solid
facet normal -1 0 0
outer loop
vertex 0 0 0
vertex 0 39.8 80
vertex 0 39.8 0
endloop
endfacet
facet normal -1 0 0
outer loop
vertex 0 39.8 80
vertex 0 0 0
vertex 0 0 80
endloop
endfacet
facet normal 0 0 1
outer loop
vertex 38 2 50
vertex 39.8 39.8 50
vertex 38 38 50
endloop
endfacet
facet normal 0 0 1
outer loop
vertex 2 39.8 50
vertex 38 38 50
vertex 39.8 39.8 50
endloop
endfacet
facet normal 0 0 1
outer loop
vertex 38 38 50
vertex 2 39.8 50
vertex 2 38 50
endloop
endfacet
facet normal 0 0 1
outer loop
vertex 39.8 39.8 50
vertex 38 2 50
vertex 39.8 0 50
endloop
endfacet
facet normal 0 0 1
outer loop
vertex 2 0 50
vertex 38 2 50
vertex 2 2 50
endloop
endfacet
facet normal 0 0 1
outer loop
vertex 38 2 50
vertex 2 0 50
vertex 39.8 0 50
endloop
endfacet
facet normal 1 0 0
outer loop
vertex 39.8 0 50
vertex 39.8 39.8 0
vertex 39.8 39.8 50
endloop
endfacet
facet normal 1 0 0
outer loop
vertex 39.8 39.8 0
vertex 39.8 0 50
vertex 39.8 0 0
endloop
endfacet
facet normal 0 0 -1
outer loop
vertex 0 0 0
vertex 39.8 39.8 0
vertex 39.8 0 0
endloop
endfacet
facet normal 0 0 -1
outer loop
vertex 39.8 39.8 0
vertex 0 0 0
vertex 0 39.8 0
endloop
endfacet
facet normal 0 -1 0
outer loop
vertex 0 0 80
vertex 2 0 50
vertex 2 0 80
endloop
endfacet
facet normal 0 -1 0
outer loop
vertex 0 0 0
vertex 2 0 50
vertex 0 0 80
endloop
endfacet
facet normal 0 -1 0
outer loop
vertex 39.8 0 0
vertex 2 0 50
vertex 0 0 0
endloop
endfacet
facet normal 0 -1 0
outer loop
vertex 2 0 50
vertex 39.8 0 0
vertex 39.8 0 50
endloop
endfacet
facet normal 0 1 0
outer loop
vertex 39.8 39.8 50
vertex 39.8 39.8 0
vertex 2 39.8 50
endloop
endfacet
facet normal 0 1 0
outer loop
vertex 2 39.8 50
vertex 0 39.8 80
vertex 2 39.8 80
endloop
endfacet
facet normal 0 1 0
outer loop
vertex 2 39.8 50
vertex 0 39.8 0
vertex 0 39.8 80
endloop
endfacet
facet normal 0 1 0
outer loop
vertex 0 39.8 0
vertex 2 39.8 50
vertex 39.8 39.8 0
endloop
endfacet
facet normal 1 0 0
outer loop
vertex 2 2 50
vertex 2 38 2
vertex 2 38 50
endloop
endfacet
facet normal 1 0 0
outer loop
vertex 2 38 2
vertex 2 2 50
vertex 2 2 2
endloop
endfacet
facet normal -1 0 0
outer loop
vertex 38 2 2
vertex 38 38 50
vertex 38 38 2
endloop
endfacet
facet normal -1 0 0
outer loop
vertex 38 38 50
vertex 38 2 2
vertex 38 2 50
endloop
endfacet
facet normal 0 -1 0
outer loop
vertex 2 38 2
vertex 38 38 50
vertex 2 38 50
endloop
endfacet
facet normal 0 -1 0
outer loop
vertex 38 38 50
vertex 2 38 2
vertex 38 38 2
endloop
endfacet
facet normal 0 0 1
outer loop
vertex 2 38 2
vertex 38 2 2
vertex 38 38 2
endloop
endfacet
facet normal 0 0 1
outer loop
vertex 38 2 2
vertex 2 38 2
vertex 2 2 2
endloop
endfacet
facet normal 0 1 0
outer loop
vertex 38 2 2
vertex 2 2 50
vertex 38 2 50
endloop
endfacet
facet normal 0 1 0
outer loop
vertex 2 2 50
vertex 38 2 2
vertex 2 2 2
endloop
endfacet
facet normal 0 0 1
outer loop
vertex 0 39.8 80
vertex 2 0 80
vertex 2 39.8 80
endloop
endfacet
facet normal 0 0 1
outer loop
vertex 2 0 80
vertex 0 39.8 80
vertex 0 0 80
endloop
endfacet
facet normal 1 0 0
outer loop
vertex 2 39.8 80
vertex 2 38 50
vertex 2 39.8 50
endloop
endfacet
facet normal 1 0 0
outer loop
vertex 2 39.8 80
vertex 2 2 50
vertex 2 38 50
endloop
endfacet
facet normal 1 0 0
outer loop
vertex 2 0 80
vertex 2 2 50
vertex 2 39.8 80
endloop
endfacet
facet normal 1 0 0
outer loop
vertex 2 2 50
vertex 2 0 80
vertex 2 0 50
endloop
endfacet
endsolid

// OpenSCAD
h = 50;
size = 39.8;

// bottom
difference(){
    cube([size,size,h]);
    translate([2,2,2]){
        cube([36,36,h]);
    }
}

// baffle
bh = 30;
translate([0,0,h]){
    cube([2,size,bh]);
}
